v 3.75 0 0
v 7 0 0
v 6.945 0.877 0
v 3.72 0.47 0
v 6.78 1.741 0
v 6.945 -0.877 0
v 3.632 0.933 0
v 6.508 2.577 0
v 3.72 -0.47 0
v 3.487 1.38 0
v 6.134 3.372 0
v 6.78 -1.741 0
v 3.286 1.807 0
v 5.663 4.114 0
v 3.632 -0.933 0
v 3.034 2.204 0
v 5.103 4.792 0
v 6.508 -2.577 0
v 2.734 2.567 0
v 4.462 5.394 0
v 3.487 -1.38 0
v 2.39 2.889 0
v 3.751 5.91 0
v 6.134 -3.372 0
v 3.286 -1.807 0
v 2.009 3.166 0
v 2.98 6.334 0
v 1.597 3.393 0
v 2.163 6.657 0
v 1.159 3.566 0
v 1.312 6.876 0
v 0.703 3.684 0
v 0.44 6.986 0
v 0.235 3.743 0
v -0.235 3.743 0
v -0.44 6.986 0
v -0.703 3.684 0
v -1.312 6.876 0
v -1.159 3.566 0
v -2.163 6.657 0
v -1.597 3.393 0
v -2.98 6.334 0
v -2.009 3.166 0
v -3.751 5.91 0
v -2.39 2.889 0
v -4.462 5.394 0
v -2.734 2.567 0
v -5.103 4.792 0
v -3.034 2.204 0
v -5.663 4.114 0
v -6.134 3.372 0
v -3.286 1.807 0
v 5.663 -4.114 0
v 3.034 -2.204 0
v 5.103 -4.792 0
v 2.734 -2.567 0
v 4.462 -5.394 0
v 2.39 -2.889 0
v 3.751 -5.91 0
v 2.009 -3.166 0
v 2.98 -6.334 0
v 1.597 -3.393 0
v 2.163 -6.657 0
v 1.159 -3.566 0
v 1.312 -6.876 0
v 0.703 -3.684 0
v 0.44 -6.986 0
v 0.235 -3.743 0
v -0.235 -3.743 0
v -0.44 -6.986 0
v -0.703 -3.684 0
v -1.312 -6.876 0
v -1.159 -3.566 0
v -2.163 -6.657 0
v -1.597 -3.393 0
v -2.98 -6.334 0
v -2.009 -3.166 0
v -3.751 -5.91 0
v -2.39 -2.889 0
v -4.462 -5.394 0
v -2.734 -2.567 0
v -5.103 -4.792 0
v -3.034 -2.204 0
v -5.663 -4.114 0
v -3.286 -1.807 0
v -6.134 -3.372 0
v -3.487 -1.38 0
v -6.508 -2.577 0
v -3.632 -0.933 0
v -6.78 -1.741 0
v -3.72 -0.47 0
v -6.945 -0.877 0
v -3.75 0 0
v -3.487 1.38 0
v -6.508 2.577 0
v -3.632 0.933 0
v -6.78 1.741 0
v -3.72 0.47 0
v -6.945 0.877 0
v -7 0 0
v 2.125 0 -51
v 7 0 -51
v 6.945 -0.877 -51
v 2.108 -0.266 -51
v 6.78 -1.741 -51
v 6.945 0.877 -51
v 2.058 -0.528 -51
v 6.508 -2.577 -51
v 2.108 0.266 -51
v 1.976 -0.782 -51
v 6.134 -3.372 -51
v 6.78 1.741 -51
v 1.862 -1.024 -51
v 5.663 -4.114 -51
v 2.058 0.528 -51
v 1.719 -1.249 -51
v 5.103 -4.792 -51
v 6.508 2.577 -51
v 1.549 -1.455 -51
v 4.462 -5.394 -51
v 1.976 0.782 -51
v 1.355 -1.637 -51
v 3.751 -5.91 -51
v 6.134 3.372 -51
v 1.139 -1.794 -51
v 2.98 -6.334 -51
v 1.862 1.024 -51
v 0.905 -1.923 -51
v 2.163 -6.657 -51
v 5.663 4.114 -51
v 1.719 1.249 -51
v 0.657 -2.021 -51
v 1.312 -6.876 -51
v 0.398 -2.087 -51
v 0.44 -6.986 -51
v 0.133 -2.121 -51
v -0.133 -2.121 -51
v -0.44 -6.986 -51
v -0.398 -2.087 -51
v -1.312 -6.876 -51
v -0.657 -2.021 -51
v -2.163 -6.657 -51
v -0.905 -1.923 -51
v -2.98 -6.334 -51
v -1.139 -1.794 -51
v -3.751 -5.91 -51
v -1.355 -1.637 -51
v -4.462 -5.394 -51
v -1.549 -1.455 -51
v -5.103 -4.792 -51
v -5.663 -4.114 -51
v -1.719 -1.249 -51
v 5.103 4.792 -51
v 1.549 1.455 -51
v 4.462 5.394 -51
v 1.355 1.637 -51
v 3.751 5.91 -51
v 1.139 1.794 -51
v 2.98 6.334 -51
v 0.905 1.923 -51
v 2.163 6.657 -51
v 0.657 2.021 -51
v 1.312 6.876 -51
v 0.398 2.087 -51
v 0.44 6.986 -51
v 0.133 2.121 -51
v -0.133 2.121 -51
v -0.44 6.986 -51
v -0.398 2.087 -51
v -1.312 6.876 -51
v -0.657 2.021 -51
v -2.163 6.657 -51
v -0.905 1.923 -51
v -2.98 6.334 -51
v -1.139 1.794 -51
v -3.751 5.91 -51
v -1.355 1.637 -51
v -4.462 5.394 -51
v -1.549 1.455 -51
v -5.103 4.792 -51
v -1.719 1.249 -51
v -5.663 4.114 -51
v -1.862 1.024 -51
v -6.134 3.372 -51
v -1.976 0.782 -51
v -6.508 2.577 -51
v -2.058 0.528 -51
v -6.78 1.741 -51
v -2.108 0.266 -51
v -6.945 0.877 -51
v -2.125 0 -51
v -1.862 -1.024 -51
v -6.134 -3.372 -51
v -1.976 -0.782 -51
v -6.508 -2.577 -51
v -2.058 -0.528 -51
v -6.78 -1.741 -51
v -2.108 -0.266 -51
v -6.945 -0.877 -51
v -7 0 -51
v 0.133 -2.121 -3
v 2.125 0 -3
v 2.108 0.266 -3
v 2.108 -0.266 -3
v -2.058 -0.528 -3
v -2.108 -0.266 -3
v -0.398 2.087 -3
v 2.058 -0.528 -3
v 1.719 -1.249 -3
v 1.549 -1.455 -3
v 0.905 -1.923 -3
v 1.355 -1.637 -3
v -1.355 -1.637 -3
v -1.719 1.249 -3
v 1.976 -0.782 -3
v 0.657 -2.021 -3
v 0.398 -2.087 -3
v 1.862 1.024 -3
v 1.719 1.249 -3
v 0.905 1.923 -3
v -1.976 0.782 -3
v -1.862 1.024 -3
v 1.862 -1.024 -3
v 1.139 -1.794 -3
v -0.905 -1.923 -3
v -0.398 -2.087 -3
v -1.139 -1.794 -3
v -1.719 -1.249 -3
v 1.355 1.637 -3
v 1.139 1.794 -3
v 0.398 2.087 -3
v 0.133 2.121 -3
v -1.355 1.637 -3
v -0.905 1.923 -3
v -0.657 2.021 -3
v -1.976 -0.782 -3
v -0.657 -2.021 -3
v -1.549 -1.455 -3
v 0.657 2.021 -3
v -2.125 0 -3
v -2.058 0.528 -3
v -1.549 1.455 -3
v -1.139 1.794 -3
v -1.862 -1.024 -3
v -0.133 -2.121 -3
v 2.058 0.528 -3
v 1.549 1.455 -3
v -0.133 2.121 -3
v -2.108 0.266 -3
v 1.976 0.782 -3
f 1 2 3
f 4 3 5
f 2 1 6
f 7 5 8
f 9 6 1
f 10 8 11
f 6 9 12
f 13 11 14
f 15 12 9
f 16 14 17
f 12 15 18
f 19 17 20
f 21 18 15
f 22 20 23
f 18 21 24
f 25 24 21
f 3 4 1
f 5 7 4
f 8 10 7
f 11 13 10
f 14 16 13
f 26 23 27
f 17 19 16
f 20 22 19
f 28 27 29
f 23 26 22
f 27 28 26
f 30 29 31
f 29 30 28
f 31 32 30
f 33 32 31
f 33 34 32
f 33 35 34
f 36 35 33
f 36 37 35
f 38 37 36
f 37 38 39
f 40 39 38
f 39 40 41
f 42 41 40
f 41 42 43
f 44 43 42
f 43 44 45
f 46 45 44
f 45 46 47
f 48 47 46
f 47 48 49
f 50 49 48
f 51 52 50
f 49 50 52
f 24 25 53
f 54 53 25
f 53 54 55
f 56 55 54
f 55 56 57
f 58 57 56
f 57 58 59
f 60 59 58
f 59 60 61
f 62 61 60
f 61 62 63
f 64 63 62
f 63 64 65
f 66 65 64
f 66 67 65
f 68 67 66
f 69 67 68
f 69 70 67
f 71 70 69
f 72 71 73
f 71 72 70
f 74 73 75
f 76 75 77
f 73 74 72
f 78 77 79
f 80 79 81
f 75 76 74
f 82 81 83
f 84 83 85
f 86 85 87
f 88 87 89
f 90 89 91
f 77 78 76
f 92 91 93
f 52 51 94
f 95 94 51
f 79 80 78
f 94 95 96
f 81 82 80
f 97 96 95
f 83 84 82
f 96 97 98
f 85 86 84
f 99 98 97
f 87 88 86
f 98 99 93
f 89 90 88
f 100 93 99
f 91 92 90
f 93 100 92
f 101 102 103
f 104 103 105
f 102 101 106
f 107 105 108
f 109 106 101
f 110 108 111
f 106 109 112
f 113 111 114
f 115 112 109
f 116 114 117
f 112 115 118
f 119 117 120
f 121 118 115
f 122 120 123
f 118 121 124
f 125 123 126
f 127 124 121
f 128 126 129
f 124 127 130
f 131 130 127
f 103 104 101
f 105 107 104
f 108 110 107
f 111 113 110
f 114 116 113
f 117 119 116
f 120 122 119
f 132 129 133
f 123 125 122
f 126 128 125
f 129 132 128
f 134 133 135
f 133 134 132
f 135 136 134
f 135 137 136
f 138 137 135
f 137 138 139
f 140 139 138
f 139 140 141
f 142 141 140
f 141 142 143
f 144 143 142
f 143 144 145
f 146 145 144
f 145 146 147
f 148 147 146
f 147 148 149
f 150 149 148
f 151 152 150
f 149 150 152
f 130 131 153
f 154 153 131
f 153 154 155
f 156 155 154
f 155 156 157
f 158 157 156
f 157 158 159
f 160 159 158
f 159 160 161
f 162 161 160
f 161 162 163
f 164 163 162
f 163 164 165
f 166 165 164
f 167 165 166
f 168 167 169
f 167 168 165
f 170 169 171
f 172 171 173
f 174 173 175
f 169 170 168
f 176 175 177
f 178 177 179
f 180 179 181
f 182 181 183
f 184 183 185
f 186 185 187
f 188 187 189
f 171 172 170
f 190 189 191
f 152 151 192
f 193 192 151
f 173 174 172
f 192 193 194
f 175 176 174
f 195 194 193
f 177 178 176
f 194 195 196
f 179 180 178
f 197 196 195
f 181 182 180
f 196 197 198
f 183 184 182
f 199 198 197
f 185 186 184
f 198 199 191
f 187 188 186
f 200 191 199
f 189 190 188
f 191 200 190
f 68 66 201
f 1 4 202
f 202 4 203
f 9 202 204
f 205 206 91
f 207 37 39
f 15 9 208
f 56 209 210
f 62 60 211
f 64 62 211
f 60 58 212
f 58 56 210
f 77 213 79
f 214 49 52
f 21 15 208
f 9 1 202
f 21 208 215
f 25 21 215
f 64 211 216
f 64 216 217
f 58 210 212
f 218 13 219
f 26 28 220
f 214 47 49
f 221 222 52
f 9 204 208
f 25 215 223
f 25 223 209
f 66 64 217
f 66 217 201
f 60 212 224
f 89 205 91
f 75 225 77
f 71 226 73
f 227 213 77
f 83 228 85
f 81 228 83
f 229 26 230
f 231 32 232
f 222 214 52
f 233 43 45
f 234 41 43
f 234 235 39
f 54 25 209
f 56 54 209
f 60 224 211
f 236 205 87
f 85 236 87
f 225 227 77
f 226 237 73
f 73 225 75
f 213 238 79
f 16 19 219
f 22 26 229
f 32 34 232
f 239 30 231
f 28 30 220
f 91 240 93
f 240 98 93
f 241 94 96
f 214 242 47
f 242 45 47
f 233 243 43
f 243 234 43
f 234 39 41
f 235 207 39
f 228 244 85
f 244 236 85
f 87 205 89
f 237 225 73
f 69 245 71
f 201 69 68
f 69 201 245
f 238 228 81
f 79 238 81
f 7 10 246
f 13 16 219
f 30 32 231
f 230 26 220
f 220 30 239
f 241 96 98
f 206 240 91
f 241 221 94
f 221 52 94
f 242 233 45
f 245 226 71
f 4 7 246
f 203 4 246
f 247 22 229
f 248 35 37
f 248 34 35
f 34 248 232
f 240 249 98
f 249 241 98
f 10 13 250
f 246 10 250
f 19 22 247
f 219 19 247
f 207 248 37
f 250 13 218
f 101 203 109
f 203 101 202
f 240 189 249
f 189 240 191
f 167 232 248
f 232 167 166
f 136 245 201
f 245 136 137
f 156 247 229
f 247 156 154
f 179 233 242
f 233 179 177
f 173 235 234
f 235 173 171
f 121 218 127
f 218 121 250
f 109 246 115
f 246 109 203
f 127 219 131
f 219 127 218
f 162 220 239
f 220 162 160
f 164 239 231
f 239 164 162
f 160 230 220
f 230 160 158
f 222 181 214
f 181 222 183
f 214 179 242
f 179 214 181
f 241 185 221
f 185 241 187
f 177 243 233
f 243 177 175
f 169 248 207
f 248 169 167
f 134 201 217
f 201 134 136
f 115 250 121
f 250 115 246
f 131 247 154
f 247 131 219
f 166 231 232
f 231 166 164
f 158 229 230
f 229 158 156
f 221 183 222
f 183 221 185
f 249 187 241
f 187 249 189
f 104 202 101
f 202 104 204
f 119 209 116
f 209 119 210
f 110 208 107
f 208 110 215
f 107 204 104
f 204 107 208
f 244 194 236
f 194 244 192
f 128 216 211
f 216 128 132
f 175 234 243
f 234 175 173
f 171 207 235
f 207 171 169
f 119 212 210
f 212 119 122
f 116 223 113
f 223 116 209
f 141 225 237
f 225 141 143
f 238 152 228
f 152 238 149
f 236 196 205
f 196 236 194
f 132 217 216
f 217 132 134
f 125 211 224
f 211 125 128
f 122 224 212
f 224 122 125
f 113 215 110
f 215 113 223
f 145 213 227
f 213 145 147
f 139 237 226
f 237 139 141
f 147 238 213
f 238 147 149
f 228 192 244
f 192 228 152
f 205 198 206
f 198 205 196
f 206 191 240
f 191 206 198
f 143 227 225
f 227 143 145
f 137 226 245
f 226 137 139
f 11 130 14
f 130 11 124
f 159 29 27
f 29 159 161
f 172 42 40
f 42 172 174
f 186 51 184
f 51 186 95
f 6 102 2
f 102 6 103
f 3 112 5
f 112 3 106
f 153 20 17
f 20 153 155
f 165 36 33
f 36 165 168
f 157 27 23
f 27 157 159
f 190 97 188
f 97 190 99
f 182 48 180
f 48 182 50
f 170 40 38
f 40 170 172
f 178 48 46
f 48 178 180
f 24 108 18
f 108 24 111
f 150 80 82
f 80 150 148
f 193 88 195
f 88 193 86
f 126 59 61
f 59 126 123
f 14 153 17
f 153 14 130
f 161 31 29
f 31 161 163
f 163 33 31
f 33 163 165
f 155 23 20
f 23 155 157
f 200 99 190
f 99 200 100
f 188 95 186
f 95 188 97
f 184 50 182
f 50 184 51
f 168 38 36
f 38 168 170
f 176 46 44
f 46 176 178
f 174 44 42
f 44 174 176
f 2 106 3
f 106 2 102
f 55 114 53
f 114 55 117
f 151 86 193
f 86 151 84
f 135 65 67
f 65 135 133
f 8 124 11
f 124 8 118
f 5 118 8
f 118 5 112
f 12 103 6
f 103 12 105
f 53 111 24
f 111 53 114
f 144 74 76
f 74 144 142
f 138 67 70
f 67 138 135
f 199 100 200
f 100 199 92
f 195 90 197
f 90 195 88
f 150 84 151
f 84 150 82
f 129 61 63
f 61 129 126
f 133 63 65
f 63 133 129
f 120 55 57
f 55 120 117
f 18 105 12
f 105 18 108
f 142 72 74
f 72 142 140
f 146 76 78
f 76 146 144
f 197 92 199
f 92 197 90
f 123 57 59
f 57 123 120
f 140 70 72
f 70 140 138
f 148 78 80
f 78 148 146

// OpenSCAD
$fn = 50;


difference() {
	union() {
		translate(v = [0, 0, -51.0000000000]) {
			cylinder(h = 51, r = 7.0000000000);
		}
		cylinder(h = 0, r = 16.0000000000);
	}
	union() {
		translate(v = [0, 0, 0]) {
			rotate(a = [0, 0, 0]) {
				difference() {
					union() {
						#translate(v = [0, 0, -51.0000000000]) {
							cylinder(h = 51, r = 2.0000000000);
						}
						#translate(v = [0, 0, -3]) {
							cylinder(h = 3, r1 = 2.1250000000, r2 = 3.7500000000);
						}
						#translate(v = [0, 0, -51.0000000000]) {
							cylinder(h = 51, r = 2.1250000000);
						}
						#translate(v = [0, 0, -51.0000000000]) {
							cylinder(h = 51, r = 2.0000000000);
						}
					}
					union();
				}
			}
		}
	}
}
